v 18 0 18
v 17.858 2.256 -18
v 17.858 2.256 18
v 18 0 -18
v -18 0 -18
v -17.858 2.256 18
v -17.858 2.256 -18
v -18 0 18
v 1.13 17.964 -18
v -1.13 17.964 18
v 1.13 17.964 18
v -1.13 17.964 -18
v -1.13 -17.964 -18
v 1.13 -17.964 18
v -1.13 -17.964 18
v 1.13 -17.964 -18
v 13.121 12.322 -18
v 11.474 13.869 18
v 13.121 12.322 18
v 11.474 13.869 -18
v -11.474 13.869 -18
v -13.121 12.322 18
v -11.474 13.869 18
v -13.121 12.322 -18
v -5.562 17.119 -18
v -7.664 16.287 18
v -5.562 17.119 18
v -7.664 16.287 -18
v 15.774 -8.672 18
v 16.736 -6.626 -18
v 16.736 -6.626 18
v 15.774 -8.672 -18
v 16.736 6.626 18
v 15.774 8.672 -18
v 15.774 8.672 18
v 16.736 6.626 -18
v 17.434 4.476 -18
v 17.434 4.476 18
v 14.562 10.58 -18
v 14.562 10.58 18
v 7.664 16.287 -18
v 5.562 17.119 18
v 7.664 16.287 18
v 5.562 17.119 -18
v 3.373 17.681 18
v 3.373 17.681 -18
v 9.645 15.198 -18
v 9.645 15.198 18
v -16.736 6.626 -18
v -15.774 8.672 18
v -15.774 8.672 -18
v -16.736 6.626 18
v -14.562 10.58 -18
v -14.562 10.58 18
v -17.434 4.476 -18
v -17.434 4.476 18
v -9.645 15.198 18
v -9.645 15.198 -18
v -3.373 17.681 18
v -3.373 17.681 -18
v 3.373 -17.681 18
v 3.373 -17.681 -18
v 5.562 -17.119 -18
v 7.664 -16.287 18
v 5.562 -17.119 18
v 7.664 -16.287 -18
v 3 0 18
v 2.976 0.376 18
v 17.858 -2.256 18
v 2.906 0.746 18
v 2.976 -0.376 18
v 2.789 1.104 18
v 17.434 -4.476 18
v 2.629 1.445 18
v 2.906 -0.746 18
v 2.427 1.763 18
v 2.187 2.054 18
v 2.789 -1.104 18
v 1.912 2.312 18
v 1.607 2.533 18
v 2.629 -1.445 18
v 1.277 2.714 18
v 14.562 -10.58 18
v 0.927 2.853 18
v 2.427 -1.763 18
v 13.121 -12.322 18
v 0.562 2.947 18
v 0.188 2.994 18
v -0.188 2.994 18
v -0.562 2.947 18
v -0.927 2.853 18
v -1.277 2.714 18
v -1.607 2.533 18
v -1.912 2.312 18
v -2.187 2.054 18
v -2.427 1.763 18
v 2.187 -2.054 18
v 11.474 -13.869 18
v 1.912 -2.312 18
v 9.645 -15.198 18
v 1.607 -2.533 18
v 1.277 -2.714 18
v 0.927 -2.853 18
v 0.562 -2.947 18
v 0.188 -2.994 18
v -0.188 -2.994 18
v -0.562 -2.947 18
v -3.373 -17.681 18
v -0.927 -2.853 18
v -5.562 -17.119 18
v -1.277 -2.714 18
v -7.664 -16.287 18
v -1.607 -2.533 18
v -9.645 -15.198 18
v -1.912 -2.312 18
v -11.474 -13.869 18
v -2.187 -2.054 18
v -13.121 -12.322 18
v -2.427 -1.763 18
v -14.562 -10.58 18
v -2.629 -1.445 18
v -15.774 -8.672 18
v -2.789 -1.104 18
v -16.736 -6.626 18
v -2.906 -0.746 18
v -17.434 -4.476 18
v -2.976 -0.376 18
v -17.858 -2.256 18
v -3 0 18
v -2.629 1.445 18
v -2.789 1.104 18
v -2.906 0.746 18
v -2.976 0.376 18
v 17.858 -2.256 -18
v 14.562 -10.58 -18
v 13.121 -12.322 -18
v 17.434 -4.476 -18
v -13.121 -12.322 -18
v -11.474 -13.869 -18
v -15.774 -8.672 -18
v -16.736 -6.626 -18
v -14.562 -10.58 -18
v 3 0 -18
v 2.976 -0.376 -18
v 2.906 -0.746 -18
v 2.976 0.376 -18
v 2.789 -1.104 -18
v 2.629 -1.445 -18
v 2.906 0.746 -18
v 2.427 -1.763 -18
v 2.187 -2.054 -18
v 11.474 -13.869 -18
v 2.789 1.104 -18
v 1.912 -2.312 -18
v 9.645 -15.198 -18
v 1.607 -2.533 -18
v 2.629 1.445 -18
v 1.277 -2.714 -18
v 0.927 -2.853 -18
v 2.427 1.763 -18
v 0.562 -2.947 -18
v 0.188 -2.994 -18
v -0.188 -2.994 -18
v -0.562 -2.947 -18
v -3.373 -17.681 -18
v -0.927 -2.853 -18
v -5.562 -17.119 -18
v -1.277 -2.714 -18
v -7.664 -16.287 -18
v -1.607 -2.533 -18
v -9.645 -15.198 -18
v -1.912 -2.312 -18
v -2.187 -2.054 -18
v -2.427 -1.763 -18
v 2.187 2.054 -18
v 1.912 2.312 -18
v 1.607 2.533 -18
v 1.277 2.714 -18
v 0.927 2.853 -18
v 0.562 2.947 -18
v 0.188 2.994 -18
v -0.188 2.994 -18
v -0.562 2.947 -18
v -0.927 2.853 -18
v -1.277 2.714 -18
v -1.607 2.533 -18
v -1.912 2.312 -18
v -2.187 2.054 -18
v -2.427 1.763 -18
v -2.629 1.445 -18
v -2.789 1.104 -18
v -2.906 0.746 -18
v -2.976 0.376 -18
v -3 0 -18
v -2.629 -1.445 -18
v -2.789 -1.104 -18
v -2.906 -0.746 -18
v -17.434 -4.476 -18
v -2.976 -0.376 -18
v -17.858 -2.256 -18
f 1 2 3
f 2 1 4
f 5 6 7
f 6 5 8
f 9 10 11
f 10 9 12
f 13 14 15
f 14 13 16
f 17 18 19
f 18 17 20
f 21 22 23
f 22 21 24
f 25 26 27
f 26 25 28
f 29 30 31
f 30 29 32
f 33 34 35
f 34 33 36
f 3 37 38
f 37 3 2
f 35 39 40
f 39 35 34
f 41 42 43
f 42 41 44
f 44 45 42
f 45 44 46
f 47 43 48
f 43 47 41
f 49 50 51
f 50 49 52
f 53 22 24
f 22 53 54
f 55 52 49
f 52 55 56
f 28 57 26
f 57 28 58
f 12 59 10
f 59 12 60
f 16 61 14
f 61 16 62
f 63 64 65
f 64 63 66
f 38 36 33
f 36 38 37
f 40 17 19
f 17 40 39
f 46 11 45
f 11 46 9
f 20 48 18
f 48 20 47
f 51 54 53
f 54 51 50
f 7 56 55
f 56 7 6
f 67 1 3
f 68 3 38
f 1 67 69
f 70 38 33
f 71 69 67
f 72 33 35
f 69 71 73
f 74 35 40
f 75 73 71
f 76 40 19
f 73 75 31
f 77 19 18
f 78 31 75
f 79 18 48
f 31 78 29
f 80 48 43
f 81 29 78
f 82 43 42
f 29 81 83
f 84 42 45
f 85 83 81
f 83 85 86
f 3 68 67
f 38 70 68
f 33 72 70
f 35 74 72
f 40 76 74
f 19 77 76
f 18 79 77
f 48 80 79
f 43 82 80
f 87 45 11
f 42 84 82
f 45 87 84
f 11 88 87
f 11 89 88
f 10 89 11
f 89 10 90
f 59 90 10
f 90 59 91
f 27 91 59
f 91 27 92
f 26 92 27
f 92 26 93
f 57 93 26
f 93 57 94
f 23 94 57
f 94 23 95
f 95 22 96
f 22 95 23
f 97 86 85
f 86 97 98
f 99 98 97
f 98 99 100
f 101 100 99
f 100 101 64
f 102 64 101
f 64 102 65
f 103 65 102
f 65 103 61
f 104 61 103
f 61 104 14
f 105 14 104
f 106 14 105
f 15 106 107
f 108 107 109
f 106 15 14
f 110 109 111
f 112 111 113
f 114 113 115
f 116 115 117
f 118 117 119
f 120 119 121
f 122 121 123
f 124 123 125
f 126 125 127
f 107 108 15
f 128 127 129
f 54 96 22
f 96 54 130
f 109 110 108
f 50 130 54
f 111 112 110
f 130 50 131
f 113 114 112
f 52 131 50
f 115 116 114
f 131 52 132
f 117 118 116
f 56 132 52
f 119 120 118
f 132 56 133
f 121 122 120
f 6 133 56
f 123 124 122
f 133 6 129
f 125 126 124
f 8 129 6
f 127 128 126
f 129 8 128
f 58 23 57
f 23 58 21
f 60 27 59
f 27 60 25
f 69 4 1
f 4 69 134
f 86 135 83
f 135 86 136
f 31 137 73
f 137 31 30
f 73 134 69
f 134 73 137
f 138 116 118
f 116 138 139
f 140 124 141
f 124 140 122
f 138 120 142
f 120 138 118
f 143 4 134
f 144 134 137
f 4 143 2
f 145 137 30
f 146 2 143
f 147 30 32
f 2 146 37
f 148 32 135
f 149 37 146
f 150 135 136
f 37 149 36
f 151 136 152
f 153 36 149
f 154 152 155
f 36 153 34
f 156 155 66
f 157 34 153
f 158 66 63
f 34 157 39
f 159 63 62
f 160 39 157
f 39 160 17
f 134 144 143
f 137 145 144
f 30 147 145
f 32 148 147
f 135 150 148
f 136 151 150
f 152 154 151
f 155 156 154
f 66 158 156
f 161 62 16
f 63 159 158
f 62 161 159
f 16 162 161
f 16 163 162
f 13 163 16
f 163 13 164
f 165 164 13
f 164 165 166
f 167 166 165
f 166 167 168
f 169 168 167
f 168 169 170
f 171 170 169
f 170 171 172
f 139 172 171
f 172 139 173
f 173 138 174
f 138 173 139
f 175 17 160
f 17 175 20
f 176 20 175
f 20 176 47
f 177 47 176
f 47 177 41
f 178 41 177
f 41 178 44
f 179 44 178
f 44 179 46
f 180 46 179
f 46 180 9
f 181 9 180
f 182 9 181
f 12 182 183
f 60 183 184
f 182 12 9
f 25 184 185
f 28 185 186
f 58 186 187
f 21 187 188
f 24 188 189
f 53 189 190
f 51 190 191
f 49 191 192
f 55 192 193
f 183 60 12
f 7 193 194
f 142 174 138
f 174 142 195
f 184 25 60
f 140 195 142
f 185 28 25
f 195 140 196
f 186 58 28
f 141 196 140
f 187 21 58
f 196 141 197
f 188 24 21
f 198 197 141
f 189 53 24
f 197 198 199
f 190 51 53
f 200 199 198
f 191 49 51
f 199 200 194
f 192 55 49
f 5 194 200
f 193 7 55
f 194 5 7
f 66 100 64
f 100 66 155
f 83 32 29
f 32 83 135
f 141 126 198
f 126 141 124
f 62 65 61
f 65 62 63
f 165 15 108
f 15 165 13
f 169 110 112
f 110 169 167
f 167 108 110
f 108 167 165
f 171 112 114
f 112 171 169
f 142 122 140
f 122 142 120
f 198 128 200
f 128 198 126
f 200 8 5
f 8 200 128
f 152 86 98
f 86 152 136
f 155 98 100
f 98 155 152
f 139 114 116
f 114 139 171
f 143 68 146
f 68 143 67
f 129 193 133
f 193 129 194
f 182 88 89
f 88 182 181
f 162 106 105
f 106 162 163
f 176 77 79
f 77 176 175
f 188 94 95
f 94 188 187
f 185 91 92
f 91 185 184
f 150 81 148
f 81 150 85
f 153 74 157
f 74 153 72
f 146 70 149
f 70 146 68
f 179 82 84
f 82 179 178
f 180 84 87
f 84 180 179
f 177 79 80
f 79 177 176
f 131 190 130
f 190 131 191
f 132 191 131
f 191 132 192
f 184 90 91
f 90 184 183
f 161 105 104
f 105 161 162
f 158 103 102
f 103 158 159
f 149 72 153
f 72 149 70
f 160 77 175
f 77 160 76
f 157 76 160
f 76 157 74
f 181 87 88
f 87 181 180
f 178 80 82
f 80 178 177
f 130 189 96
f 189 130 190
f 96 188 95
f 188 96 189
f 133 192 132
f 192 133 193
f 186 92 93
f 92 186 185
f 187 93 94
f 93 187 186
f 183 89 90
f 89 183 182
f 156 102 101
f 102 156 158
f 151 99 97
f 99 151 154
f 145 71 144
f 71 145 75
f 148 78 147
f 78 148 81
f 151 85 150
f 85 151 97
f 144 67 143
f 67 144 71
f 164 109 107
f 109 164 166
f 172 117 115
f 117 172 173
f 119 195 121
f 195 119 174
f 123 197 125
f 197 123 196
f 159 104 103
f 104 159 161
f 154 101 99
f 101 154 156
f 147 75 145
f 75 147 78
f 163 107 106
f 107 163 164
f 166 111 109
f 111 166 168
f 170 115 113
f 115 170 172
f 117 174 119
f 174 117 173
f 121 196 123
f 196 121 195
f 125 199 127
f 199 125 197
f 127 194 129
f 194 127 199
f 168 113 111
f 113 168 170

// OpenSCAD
$fn = 50;


difference() {
	union() {
		translate(v = [0, 0, -18.0000000000]) {
			cylinder(h = 36, r = 18.0000000000);
		}
	}
	union() {
		translate(v = [0, 0, -100.0000000000]) {
			cylinder(h = 200, r = 3.0000000000);
		}
	}
}
